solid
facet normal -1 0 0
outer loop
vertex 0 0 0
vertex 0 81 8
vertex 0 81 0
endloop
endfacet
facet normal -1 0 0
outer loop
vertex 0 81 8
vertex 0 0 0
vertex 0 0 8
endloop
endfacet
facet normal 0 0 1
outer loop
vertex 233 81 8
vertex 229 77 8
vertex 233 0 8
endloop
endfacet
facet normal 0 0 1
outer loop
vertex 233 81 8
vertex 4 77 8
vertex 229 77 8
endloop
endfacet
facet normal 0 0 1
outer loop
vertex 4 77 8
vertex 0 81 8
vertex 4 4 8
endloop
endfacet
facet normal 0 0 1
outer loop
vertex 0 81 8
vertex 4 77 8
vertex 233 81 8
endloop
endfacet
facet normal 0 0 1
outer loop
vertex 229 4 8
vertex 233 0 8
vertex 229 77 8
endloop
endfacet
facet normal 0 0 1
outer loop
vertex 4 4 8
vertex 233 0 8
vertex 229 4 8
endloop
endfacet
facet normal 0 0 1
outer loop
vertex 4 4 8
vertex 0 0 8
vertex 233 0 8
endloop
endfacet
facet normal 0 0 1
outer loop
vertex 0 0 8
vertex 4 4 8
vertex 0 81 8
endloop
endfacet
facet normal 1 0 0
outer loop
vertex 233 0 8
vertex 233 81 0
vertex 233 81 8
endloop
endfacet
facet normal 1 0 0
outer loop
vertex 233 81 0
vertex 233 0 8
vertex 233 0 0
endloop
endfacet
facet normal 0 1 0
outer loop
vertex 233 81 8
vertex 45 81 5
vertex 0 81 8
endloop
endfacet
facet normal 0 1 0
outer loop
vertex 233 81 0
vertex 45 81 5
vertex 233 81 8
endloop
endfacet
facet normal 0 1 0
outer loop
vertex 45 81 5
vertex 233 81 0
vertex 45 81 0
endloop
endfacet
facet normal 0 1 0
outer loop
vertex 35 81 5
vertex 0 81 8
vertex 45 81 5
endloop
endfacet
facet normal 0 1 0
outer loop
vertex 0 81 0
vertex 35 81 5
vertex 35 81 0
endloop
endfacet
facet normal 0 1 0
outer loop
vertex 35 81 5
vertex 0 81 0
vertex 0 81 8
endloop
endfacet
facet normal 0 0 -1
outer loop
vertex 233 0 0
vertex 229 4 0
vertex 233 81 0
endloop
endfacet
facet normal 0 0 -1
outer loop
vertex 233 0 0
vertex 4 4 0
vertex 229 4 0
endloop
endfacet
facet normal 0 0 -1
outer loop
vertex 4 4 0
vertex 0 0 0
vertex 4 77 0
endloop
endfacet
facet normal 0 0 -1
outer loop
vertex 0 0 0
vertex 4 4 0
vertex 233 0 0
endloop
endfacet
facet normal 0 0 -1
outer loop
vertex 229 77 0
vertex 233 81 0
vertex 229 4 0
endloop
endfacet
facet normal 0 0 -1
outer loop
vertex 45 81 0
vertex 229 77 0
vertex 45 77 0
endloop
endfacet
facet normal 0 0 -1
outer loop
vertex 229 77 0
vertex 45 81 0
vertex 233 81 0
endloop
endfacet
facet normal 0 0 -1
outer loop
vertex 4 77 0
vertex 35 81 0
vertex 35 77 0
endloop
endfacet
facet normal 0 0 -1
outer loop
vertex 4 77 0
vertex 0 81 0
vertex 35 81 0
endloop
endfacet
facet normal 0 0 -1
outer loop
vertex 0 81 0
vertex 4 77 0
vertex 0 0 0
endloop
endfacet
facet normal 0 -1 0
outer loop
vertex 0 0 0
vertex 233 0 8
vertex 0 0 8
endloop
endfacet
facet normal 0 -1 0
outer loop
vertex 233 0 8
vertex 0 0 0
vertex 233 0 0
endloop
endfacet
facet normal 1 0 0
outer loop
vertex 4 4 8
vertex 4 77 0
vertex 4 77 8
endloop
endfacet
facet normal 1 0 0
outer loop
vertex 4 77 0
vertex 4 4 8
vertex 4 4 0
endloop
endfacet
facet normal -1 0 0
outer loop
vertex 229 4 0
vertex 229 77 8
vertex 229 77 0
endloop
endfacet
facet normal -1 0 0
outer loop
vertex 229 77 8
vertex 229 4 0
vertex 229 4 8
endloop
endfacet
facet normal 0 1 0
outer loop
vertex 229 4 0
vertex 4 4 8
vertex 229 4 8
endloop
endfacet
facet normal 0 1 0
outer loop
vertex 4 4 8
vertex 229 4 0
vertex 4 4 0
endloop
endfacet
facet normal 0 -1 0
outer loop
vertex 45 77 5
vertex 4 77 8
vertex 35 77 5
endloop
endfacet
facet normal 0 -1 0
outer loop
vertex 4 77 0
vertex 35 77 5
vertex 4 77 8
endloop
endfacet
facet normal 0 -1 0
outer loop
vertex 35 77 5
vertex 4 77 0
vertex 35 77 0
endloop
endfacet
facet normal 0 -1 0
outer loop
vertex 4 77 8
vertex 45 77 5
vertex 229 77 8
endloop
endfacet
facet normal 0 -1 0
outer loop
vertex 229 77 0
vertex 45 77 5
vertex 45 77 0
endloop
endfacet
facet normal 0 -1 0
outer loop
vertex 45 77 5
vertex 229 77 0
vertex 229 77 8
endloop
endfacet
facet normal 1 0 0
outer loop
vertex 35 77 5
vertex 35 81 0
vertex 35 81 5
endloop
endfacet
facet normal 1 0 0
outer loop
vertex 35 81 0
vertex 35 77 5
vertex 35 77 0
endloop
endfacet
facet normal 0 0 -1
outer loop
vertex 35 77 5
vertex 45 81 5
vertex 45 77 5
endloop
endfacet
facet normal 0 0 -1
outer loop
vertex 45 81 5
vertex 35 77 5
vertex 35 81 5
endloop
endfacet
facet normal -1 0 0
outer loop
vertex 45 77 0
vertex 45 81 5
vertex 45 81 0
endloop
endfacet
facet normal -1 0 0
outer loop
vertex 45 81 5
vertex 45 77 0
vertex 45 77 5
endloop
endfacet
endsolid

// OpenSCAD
// -*- mode: c -*-
/* All distances are in mm. */

$fn = 50;
cx = 233;
cy = 81;
cz = 8;
cw = 4;
ux = 35;
uw = 10;
uz = 5;
bz = 0;//4;

difference() {
    cube([cx, cy, bz+cz], center=false);
    translate([cw, cw, bz]) { cube([cx - cw*2, cy - cw*2, cz*2], center=false); }
    translate([ux, cy - cw*2, bz]) { cube([uw, cw*4, uz], center=false); }
 }
